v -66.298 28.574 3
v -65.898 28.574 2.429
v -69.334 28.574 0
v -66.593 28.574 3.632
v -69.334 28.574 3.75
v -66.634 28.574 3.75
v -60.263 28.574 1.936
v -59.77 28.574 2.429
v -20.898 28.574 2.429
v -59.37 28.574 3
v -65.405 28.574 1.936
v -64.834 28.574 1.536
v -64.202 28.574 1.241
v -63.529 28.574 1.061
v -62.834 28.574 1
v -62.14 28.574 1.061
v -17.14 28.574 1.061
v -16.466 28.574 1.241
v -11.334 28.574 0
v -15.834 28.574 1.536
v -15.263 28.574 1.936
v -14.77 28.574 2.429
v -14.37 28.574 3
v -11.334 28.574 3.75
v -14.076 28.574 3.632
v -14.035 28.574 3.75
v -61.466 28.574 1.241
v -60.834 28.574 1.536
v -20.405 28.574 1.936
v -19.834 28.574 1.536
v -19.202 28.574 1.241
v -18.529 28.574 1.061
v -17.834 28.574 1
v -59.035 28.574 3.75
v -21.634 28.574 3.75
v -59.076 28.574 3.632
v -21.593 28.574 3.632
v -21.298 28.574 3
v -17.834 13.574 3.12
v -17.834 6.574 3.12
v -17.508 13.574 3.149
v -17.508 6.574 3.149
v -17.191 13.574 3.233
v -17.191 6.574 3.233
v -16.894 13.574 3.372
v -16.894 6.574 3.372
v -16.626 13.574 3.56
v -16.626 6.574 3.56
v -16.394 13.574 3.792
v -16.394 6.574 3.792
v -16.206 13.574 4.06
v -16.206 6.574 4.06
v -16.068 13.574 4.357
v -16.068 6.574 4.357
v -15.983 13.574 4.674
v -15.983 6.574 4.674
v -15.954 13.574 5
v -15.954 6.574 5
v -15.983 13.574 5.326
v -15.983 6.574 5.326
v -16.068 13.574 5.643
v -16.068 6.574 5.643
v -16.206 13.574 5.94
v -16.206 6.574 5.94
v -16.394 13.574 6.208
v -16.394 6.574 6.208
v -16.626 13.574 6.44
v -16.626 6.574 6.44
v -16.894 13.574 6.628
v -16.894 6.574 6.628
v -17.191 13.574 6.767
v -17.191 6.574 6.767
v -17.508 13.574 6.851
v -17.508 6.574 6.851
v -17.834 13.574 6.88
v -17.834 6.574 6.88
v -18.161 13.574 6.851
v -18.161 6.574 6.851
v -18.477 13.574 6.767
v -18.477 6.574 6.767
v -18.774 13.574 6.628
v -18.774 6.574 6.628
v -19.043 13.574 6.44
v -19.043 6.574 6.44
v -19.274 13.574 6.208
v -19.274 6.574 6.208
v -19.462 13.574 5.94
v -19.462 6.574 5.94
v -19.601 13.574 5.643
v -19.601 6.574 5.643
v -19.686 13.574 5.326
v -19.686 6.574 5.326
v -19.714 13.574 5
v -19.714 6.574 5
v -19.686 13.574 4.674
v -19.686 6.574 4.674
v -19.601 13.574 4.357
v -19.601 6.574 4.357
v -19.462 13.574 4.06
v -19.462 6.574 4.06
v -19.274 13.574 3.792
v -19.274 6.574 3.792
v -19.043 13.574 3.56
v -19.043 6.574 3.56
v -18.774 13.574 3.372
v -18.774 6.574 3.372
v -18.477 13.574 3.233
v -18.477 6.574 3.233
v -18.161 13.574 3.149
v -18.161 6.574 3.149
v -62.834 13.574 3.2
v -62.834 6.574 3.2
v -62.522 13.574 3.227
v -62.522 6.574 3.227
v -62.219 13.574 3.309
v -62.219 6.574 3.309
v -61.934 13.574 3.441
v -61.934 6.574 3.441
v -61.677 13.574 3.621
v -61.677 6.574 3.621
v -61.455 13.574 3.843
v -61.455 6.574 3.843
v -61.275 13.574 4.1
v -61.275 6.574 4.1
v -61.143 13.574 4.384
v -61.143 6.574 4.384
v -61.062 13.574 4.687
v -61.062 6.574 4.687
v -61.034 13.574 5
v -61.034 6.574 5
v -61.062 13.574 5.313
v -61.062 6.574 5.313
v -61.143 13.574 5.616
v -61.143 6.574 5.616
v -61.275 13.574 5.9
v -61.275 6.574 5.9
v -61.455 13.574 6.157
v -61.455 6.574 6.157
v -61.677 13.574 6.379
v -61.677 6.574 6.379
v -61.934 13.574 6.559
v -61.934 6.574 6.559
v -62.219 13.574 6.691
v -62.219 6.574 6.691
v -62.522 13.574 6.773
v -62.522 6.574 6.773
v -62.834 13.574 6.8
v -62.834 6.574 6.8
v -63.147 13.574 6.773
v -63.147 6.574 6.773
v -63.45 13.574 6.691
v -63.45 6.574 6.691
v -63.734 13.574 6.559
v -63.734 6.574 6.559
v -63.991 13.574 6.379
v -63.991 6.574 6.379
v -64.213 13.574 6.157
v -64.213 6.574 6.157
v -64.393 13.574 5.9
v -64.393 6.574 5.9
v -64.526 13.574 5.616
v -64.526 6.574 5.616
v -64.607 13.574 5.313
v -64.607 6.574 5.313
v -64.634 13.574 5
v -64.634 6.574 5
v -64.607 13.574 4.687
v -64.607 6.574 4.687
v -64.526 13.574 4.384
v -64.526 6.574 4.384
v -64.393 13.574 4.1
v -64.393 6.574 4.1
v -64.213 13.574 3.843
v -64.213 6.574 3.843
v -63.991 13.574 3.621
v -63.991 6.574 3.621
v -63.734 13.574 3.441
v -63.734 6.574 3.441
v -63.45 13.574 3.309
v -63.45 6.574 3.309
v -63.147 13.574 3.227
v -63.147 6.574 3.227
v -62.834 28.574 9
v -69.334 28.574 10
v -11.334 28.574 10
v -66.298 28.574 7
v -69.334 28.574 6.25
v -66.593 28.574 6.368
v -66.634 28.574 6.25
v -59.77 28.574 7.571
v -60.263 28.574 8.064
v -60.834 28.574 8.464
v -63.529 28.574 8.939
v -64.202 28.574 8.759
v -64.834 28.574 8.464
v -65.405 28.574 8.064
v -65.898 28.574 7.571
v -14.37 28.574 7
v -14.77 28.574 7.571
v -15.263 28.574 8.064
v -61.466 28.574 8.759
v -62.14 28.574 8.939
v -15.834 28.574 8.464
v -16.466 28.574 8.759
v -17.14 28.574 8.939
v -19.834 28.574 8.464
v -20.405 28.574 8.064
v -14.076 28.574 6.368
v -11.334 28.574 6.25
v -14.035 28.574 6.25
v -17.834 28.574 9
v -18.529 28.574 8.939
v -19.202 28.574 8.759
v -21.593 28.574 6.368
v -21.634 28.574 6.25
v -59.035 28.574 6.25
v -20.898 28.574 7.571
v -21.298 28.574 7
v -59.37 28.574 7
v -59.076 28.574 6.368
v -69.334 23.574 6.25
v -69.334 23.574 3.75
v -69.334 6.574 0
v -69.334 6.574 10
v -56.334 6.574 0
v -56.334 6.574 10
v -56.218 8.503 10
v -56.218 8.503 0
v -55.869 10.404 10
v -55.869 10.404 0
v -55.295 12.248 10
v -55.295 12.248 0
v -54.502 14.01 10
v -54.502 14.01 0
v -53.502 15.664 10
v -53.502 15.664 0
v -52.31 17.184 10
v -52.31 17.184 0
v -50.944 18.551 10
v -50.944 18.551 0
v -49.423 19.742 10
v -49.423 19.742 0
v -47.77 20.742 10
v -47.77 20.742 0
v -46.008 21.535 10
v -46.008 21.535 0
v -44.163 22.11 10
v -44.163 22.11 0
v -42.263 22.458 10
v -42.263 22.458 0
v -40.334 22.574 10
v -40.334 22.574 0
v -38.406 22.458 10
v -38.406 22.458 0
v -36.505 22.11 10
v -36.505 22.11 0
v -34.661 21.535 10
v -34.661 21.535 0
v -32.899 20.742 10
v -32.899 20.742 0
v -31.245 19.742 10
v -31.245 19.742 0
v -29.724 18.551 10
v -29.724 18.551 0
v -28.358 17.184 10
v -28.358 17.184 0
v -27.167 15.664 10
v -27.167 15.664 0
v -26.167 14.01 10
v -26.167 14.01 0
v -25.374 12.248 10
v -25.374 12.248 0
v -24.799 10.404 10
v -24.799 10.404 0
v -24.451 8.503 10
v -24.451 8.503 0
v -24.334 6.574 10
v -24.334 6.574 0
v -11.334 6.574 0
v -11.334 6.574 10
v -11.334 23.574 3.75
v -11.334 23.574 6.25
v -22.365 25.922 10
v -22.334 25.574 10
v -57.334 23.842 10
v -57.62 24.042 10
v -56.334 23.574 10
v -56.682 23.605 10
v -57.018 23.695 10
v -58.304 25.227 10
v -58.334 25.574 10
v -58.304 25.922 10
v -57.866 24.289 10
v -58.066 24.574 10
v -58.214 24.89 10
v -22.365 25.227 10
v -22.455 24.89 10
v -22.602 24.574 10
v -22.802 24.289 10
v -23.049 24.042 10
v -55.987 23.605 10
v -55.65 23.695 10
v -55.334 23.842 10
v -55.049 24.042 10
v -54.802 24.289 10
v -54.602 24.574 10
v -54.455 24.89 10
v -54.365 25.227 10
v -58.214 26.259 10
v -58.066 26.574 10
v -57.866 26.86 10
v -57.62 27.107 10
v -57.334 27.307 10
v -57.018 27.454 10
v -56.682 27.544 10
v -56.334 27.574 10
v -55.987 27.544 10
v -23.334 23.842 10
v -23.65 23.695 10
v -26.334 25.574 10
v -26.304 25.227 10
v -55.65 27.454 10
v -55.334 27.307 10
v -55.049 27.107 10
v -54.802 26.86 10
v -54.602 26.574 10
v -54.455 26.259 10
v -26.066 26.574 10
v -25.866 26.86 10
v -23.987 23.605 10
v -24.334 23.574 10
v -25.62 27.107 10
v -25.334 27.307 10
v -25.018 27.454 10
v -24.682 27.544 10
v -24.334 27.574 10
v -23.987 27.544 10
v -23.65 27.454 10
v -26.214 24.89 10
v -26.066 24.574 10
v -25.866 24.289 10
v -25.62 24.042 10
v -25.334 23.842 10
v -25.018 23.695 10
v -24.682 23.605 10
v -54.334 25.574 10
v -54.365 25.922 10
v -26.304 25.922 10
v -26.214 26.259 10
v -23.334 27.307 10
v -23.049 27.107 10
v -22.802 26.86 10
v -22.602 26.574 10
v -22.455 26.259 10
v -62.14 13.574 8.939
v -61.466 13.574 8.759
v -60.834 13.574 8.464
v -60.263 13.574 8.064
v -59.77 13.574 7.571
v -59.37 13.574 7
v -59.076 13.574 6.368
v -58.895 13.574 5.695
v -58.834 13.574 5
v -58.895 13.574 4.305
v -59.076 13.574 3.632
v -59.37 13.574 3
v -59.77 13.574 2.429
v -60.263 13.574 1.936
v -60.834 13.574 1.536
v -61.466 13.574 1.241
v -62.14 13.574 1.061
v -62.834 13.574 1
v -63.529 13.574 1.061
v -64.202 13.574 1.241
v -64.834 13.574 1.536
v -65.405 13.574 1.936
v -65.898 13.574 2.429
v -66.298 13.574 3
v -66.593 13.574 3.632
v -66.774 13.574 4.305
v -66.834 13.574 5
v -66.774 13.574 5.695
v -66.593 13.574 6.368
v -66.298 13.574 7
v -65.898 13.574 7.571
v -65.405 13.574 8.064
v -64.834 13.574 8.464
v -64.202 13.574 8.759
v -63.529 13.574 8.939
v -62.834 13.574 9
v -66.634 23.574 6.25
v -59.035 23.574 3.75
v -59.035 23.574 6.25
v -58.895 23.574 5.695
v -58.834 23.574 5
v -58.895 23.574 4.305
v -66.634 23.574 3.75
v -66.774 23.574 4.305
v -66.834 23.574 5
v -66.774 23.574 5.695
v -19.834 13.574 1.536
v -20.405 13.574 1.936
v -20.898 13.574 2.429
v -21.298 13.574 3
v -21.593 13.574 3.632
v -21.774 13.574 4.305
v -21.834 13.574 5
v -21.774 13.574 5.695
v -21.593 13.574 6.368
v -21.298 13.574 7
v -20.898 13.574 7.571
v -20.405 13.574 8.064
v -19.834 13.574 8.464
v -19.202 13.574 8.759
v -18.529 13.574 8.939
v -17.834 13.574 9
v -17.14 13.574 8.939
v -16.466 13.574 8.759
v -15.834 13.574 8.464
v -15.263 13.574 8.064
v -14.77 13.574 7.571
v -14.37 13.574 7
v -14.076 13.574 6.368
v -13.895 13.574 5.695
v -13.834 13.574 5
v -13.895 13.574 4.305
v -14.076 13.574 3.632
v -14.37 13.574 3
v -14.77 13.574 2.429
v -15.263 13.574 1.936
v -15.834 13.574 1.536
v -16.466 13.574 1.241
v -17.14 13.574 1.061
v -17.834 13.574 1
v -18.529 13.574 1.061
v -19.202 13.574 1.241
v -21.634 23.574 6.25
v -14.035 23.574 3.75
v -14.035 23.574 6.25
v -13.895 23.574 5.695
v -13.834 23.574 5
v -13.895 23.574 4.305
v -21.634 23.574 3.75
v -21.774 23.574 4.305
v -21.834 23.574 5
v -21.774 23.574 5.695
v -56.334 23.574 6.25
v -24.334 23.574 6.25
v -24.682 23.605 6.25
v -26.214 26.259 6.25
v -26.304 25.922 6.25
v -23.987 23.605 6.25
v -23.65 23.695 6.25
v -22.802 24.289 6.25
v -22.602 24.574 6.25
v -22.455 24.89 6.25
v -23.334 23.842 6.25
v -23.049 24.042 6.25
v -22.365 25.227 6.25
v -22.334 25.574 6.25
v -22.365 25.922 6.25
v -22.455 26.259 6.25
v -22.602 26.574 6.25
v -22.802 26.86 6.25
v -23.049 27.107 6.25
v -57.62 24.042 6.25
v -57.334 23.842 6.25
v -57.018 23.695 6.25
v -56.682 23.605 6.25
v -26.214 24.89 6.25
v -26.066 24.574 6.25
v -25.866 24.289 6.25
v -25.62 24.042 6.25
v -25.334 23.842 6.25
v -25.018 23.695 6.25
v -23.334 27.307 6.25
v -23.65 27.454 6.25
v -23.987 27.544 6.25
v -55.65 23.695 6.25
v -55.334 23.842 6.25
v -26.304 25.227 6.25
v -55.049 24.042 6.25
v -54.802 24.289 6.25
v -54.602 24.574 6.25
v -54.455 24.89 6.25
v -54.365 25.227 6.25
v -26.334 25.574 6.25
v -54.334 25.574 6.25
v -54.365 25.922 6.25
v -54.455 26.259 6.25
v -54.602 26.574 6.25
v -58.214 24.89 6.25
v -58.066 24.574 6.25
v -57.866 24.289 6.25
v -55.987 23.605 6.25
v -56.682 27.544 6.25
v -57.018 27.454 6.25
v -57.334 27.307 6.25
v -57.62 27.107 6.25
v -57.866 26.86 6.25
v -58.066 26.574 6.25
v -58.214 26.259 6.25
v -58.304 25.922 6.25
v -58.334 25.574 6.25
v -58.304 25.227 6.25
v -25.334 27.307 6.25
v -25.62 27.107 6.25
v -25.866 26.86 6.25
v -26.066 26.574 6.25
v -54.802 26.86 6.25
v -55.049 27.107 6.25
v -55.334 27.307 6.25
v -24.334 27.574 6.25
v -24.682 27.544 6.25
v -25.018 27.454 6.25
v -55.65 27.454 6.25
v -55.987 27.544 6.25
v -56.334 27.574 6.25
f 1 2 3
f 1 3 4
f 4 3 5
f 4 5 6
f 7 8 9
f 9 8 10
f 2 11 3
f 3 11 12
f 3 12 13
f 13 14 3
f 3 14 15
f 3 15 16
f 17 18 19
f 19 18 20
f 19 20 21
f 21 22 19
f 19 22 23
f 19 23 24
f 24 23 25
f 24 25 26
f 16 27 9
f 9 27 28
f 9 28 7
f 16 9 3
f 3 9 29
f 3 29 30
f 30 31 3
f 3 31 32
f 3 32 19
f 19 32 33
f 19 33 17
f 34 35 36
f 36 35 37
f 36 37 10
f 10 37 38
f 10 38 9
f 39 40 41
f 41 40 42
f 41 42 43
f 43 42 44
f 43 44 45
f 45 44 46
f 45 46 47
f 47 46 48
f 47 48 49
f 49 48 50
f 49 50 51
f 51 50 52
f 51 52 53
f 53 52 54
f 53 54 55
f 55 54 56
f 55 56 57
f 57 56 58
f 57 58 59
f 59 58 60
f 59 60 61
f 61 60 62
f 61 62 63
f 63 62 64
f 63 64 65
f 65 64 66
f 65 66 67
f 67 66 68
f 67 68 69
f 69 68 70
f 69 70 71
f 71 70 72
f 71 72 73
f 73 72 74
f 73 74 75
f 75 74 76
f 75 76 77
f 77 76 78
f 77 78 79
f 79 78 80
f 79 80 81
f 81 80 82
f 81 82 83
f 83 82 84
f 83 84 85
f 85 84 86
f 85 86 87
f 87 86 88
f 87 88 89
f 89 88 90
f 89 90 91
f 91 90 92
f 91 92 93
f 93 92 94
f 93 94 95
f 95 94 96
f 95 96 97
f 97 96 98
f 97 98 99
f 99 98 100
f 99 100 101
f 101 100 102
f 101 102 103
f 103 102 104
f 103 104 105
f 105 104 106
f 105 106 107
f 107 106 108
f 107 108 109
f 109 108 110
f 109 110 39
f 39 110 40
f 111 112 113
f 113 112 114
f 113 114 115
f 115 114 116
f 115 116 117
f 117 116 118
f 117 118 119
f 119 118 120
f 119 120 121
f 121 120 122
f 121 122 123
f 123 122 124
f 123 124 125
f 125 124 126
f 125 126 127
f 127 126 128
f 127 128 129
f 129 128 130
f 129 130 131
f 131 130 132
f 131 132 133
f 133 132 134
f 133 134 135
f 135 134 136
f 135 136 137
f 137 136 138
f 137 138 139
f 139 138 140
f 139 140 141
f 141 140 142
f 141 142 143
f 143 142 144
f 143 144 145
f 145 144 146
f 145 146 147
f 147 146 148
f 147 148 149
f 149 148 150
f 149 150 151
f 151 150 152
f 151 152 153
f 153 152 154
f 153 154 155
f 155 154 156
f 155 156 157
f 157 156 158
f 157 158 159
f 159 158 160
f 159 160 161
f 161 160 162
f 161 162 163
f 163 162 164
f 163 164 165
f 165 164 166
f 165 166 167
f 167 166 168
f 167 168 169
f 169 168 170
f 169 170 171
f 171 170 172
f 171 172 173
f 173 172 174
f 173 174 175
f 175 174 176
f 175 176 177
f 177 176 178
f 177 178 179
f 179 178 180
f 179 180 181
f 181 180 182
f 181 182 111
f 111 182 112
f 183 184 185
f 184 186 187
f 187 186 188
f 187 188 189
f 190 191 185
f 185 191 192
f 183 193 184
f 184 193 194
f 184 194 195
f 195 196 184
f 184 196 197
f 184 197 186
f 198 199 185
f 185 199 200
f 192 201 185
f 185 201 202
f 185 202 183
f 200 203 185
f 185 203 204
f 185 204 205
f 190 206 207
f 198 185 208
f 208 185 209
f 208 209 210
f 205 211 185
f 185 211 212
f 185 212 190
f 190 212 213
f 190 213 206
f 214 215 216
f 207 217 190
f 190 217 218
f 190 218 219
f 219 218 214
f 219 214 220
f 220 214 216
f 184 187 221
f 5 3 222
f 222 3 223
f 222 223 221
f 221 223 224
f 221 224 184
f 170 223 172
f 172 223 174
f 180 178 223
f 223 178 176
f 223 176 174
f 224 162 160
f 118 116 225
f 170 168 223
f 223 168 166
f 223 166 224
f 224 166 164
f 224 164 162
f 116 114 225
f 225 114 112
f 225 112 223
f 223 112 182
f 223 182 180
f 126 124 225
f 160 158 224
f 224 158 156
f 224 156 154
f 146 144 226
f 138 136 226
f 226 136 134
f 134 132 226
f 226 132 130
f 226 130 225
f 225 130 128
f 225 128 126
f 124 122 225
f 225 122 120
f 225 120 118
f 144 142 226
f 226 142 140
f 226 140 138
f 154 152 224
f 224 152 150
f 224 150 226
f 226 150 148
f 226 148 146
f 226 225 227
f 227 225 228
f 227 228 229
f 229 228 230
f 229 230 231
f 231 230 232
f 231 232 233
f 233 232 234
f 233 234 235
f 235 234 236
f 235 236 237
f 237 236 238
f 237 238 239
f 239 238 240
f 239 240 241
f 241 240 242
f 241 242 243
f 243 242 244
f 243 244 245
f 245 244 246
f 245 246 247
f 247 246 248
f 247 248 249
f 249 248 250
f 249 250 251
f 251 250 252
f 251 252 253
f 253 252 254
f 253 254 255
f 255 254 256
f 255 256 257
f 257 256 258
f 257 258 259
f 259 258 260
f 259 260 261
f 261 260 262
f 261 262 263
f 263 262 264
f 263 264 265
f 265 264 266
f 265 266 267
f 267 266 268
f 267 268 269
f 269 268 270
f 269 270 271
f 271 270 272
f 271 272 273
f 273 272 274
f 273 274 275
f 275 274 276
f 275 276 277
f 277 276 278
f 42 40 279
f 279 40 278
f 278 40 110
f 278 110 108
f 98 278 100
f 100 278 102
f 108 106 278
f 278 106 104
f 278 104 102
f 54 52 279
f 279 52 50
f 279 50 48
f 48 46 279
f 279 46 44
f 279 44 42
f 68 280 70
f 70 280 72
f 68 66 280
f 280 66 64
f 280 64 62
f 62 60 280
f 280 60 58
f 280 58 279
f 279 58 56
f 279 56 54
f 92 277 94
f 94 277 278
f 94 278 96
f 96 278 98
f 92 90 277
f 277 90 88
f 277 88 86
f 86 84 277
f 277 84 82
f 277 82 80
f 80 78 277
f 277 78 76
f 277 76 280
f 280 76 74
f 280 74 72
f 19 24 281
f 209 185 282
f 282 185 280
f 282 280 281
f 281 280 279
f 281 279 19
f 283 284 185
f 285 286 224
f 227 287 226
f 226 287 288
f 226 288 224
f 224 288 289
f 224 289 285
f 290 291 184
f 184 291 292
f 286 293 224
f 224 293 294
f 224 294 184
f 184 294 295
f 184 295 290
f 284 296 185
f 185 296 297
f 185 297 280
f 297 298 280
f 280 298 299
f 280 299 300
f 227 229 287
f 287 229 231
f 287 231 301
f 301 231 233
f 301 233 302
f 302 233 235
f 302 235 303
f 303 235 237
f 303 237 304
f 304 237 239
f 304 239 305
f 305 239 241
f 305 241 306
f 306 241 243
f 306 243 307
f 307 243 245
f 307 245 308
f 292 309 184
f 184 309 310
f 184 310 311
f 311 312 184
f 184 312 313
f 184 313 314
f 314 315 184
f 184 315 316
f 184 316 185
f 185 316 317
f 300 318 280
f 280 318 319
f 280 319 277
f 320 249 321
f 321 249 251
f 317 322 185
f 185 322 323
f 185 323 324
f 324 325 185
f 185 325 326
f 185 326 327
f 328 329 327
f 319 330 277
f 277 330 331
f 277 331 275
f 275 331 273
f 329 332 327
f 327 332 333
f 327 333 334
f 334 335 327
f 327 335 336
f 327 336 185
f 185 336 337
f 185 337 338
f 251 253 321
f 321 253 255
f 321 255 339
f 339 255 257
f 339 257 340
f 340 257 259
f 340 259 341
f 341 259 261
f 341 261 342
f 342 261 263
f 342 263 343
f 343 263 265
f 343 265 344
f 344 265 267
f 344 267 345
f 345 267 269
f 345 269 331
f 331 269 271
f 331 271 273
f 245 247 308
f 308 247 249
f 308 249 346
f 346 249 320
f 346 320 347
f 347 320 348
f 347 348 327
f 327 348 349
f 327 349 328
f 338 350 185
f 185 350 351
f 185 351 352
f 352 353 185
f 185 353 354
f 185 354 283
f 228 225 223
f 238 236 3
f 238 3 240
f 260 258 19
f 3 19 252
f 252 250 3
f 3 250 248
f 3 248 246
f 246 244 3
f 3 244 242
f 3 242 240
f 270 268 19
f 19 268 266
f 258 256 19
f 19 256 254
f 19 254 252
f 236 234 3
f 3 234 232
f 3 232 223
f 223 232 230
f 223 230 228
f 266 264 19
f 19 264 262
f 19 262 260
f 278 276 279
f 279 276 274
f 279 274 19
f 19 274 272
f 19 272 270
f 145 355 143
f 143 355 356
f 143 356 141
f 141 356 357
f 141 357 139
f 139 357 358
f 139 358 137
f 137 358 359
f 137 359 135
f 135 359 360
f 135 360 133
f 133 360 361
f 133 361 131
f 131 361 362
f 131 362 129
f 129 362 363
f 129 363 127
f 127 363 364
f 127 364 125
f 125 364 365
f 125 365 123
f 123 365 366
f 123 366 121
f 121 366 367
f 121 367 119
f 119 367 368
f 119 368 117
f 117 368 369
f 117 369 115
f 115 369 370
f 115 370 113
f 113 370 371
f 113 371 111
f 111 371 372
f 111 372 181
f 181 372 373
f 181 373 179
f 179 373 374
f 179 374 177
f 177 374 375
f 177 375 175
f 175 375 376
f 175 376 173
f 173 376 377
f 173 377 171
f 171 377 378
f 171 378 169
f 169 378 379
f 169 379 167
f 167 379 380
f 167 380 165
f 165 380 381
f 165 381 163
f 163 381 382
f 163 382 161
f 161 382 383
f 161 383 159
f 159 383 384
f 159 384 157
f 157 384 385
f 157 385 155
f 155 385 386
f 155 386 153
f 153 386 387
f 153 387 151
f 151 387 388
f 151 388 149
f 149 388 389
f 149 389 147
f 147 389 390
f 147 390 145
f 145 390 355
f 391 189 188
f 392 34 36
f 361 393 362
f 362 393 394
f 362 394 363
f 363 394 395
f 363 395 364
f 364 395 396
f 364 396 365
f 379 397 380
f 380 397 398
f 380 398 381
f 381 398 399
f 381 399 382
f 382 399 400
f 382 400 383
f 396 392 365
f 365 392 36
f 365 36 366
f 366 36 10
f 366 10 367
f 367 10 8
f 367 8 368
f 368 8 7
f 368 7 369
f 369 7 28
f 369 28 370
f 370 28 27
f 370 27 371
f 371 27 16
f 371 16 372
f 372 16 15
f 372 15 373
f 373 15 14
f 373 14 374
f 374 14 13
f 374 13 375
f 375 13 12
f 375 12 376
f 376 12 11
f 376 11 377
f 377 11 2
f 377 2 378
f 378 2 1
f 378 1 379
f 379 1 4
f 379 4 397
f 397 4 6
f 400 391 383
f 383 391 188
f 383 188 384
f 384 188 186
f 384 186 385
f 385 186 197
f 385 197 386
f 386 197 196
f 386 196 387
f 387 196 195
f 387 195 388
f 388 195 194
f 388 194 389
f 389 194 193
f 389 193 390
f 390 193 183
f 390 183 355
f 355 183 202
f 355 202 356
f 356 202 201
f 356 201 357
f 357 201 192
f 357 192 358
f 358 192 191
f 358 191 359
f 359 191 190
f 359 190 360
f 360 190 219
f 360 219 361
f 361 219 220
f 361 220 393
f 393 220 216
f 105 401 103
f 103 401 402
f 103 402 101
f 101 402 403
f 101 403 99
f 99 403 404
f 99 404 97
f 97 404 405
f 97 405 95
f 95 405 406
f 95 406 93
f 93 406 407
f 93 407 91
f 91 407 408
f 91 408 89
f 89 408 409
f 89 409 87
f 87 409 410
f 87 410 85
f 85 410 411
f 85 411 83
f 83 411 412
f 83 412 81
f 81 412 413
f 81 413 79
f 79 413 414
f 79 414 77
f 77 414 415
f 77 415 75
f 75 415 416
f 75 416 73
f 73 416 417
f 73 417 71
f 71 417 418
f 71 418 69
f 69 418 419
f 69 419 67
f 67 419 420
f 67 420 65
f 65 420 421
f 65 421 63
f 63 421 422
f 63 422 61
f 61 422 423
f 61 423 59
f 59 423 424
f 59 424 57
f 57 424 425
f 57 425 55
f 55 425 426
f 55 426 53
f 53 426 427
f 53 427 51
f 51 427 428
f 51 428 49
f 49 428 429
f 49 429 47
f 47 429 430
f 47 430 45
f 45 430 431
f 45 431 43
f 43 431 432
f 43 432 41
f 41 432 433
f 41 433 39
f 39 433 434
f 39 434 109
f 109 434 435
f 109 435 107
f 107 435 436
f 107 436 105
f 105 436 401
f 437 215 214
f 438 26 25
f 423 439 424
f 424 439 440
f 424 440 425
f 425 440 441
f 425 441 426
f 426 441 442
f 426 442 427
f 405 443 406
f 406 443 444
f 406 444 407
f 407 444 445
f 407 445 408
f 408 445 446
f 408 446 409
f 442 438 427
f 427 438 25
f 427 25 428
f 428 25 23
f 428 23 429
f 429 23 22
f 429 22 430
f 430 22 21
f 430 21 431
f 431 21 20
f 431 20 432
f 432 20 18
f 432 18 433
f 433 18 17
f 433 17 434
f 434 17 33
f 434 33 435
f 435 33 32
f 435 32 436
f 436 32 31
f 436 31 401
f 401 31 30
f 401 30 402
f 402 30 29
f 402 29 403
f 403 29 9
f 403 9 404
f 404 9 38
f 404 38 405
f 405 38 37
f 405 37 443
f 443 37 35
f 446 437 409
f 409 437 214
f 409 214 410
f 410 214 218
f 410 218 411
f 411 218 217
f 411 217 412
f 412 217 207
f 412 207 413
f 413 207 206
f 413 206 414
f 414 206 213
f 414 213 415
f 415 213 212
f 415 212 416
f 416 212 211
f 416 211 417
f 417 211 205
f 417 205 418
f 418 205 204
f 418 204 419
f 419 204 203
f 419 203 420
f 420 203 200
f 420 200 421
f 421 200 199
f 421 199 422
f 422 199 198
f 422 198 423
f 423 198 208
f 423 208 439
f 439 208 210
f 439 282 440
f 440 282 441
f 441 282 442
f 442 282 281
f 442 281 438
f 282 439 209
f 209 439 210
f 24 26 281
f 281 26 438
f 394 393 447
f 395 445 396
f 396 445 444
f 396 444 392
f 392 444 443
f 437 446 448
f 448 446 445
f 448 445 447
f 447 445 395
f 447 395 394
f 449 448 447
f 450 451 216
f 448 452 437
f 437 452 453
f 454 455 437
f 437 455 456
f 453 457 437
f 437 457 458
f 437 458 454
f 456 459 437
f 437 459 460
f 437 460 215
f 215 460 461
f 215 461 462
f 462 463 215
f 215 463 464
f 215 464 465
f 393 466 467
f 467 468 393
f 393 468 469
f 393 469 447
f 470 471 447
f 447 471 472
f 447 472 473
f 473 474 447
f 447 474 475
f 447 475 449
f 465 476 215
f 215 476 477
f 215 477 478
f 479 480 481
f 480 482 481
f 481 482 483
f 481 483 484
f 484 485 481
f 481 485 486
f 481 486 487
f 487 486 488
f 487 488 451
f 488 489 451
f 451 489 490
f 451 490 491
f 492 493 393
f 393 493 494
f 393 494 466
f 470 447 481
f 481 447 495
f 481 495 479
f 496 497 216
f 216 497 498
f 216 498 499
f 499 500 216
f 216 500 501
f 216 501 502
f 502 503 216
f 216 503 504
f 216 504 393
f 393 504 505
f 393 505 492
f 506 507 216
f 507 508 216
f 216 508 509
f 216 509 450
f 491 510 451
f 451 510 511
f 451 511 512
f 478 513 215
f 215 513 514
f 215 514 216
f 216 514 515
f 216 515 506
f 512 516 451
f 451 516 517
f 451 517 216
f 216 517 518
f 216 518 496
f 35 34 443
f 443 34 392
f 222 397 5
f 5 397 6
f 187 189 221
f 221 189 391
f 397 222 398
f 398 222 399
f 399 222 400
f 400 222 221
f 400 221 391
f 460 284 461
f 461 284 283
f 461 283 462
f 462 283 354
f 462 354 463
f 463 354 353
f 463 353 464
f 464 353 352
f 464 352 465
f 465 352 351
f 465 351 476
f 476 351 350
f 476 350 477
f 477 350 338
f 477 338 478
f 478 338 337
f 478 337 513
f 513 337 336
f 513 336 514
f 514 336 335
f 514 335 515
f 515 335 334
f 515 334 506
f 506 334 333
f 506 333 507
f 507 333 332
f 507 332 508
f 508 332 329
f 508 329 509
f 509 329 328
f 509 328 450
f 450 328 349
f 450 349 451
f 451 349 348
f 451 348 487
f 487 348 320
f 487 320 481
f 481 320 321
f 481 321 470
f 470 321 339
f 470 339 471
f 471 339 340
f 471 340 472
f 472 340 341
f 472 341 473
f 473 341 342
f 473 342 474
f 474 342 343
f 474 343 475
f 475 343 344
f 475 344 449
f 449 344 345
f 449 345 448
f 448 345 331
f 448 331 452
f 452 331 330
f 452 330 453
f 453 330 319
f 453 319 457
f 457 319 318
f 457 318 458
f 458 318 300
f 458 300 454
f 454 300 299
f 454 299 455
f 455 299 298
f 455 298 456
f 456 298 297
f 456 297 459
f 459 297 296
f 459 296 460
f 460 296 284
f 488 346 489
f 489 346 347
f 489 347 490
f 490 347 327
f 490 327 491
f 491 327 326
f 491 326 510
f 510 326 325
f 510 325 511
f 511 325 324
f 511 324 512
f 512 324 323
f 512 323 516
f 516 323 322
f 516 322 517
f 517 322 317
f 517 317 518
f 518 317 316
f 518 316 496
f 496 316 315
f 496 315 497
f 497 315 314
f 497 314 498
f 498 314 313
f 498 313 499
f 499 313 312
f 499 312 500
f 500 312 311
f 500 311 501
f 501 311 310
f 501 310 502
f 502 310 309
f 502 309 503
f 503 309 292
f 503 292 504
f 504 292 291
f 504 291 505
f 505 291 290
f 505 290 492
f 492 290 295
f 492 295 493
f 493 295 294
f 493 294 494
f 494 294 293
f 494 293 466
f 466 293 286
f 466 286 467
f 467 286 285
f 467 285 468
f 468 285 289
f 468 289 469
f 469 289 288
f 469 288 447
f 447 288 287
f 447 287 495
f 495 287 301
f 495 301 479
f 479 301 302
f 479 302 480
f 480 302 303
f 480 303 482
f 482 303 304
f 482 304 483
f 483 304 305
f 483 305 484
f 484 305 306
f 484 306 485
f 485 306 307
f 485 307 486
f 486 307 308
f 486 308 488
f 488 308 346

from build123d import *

# Parameters (mm, degrees)
EXTRUDE_1_DEPTH     = 10
SKETCH_2_R          = 1.8
SKETCH_2_R_2        = 1.88
CUT_EXTRUDE_1_DEPTH = 27
SKETCH_3_R          = 4
CUT_EXTRUDE_2_DEPTH = 15
SKETCH_4_W          = 58
SKETCH_4_H          = 2.5
CUT_EXTRUDE_4_DEPTH = 5
SKETCH_5_R          = 2
CUT_EXTRUDE_5_DEPTH = 5


with BuildPart() as part:
    # 草图1 → 凸台-拉伸1 (new body)
    with BuildSketch(Plane.XY):
        with BuildLine():
            Line((-69.33427814, 6.574466706), (-69.33427814, 28.574466706))
            Line((-69.33427814, 28.574466706), (-11.33427814, 28.574466706))
            Line((-11.33427814, 28.574466706), (-11.33427814, 6.574466706))
            Line((-11.33427814, 6.574466706), (-24.33427814, 6.574466706))
            ThreePointArc((-24.33427814, 6.574466706), (-40.33427814, 22.574466706), (-56.33427814, 6.574466706))
            Line((-56.33427814, 6.574466706), (-69.33427814, 6.574466706))
        make_face()
    extrude(amount=EXTRUDE_1_DEPTH)

    # 草图2 → 切除-拉伸1 (cut)
    with BuildSketch(Plane.XZ.offset(-6.574466706)):
        with Locations(Location((-62.83427814, 5, 0), (0, 0, 270))):
            Circle(SKETCH_2_R)
        with Locations(Location((-17.83427814, 5, 0), (0, 0, 270))):
            Circle(SKETCH_2_R_2)
    extrude(amount=-CUT_EXTRUDE_1_DEPTH, mode=Mode.SUBTRACT)

    # 草图3 → 切除-拉伸2 (cut)
    with BuildSketch(Plane(origin=(0, 28.574466706, 0), x_dir=(1, 0, 0), z_dir=(0, 1, 0))):
        with Locations(Location((-62.83427814, -5, 0), (0, 0, 270))):
            Circle(SKETCH_3_R)
        with Locations(Location((-17.83427814, -5, 0), (0, 0, 270))):
            Circle(SKETCH_3_R)
    extrude(amount=-CUT_EXTRUDE_2_DEPTH, mode=Mode.SUBTRACT)

    # 草图4 → 切除-拉伸4 (cut)
    with BuildSketch(Plane(origin=(0, 28.574466706, 0), x_dir=(1, 0, 0), z_dir=(0, 1, 0))):
        with Locations((-40.33427814, -5)):
            Rectangle(SKETCH_4_W, SKETCH_4_H)
    extrude(amount=-CUT_EXTRUDE_4_DEPTH, mode=Mode.SUBTRACT)

    # 草图5 → 切除-拉伸5 (cut)
    with BuildSketch(Plane.XY.offset(10)):
        with Locations((-56.33427814, 25.574466706)):
            Circle(SKETCH_5_R)
        with Locations((-24.33427814, 25.574466706)):
            Circle(SKETCH_5_R)
    extrude(amount=-CUT_EXTRUDE_5_DEPTH, mode=Mode.SUBTRACT)


solid = part.part
